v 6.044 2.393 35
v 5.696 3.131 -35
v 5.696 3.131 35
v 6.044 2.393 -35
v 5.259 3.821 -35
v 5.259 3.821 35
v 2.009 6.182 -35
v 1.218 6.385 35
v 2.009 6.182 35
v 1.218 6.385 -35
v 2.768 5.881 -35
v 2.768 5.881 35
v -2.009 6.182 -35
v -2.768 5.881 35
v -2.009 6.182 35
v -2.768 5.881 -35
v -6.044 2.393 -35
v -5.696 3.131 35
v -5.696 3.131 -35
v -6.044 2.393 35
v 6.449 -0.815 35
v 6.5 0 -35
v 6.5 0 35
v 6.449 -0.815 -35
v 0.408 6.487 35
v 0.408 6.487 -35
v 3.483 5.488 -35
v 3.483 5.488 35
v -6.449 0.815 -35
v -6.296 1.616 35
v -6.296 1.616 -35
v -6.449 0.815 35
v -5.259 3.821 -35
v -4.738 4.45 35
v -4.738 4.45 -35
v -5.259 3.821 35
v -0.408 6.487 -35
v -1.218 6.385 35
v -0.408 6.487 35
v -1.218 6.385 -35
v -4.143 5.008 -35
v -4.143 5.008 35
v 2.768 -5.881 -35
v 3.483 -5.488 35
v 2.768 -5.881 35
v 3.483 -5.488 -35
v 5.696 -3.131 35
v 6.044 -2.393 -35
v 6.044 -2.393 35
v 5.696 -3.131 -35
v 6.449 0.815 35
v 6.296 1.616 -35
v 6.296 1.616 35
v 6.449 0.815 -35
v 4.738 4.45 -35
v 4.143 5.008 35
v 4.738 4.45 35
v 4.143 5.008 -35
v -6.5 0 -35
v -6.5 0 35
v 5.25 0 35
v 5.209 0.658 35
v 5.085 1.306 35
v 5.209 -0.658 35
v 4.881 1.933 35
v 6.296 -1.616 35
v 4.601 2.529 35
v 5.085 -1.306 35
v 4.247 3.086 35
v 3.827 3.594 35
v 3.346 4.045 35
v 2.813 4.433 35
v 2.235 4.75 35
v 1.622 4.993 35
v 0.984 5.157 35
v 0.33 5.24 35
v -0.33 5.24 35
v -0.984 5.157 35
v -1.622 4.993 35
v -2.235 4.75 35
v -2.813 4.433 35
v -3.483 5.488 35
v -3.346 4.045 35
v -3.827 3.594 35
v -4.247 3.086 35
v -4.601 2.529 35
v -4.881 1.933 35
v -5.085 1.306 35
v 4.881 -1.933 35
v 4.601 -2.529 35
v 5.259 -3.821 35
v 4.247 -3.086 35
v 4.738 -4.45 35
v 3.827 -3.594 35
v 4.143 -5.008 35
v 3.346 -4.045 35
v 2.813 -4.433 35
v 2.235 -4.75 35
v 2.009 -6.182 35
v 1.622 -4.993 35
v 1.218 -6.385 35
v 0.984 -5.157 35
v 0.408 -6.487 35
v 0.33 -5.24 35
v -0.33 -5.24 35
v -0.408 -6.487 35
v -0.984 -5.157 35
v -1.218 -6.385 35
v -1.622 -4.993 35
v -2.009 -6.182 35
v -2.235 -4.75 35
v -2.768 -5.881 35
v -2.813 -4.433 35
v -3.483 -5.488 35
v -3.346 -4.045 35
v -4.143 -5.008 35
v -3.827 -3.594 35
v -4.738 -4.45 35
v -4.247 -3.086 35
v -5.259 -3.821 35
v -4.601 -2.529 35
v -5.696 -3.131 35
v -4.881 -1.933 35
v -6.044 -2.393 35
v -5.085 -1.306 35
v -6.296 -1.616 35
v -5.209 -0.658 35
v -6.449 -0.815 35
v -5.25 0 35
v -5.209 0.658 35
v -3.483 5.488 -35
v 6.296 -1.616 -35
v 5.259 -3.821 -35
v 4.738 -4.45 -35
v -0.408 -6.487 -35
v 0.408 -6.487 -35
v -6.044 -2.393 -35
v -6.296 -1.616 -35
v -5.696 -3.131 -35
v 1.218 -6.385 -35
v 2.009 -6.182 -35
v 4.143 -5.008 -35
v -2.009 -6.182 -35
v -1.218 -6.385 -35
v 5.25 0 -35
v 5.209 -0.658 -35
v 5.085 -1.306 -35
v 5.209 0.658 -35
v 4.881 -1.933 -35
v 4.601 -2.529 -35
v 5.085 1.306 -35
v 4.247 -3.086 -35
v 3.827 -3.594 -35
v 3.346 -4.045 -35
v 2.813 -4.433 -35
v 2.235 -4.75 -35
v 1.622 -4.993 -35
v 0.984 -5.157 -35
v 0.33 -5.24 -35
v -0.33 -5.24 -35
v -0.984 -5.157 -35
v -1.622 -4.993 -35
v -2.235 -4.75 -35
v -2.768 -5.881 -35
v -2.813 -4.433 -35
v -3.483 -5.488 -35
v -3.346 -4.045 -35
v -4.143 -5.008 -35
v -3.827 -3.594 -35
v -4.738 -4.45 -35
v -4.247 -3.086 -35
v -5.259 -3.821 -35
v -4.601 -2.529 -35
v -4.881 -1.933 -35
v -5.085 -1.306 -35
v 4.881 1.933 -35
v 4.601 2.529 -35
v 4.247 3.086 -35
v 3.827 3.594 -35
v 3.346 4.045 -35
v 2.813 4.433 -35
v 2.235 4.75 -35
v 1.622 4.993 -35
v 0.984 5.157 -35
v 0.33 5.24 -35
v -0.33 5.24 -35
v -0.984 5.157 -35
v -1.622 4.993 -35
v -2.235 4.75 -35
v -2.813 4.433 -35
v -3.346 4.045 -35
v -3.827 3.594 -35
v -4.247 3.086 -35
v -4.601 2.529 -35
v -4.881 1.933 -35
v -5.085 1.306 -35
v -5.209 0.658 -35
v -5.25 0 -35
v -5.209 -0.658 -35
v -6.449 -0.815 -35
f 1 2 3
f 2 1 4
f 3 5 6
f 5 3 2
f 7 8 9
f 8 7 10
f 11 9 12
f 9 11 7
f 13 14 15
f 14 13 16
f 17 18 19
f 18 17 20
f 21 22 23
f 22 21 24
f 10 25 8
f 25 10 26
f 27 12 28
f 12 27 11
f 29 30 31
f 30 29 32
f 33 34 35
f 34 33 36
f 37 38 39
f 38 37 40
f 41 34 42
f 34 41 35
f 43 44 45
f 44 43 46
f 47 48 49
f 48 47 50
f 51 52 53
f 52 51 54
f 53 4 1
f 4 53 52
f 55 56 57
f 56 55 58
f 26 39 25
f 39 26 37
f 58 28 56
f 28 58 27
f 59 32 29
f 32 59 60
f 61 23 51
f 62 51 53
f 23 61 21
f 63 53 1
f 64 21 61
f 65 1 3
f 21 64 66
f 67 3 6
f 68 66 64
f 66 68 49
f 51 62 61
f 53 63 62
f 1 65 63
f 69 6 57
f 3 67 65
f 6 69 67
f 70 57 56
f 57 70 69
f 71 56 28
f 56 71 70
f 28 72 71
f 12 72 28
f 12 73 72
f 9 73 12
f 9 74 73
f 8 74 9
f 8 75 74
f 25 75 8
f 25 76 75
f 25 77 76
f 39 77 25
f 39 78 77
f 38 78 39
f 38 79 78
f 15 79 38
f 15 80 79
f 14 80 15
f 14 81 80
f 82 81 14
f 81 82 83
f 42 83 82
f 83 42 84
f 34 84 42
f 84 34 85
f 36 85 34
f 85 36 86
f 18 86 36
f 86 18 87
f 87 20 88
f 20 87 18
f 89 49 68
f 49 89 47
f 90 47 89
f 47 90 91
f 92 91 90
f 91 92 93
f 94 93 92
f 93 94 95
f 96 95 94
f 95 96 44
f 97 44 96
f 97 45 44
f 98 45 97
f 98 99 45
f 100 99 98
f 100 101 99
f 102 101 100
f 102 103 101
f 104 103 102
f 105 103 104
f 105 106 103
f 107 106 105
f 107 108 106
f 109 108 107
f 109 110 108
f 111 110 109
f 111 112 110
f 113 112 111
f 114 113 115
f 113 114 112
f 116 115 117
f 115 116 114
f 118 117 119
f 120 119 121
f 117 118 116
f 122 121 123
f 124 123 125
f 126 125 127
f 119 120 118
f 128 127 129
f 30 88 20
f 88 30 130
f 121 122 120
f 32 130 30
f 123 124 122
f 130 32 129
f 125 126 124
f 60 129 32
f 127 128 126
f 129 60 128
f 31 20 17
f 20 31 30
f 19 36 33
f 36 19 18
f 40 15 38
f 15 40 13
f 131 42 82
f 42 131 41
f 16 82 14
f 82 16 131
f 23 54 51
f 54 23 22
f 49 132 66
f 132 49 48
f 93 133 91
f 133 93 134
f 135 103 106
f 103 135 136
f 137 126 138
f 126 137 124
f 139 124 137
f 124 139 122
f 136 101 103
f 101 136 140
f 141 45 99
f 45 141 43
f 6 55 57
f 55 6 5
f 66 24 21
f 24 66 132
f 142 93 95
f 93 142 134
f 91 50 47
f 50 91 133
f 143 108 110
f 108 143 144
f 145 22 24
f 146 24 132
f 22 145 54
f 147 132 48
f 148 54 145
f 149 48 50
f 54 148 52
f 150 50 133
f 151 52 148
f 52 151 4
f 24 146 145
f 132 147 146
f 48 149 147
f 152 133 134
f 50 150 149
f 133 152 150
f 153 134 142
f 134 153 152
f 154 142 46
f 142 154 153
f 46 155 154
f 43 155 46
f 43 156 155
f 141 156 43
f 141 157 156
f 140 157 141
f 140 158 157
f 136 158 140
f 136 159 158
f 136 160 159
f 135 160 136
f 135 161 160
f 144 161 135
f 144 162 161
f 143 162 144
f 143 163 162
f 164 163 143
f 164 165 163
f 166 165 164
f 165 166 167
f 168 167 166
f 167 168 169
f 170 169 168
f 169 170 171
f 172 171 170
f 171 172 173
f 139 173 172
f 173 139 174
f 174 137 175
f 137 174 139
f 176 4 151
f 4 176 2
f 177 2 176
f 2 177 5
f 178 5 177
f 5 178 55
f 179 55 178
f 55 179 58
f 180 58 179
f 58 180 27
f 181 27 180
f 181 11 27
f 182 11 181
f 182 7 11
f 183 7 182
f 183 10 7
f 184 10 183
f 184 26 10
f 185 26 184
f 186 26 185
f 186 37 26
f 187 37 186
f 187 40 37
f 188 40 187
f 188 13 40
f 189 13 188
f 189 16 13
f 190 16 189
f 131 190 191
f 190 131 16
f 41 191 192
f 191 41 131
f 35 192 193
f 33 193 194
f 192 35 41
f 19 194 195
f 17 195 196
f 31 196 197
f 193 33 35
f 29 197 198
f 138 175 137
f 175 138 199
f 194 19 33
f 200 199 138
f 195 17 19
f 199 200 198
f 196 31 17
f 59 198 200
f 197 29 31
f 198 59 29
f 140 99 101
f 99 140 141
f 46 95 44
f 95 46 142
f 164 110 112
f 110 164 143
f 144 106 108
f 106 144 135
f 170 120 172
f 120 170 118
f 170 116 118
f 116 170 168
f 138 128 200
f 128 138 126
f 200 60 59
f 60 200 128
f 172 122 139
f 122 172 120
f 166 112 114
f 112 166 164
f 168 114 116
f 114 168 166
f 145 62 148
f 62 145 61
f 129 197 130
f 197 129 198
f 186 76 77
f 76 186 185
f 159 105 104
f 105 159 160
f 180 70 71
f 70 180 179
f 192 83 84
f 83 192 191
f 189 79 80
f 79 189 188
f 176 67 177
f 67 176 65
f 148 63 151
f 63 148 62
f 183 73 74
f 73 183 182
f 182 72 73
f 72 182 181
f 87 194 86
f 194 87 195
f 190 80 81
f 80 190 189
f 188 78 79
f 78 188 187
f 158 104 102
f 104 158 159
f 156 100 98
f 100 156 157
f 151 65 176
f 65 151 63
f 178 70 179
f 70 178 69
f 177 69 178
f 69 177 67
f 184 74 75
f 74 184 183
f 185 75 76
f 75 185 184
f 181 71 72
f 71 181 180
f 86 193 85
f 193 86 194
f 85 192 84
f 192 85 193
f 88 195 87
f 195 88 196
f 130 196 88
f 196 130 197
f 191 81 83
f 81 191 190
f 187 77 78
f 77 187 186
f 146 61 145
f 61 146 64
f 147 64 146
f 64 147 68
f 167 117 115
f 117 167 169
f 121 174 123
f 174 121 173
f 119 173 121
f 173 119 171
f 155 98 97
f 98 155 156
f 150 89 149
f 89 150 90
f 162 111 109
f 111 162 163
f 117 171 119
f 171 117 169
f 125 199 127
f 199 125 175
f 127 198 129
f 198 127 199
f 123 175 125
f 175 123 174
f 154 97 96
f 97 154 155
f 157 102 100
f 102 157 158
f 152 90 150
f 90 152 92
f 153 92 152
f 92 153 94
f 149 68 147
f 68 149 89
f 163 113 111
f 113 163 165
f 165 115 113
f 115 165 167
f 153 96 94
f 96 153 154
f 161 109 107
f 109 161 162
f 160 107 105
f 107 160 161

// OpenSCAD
$fn = 50;


difference() {
	union() {
		translate(v = [0, 0, -35.0000000000]) {
			cylinder(h = 70, r = 6.5000000000);
		}
	}
	union() {
		translate(v = [0, 0, -100.0000000000]) {
			cylinder(h = 200, r = 5.2500000000);
		}
	}
}
